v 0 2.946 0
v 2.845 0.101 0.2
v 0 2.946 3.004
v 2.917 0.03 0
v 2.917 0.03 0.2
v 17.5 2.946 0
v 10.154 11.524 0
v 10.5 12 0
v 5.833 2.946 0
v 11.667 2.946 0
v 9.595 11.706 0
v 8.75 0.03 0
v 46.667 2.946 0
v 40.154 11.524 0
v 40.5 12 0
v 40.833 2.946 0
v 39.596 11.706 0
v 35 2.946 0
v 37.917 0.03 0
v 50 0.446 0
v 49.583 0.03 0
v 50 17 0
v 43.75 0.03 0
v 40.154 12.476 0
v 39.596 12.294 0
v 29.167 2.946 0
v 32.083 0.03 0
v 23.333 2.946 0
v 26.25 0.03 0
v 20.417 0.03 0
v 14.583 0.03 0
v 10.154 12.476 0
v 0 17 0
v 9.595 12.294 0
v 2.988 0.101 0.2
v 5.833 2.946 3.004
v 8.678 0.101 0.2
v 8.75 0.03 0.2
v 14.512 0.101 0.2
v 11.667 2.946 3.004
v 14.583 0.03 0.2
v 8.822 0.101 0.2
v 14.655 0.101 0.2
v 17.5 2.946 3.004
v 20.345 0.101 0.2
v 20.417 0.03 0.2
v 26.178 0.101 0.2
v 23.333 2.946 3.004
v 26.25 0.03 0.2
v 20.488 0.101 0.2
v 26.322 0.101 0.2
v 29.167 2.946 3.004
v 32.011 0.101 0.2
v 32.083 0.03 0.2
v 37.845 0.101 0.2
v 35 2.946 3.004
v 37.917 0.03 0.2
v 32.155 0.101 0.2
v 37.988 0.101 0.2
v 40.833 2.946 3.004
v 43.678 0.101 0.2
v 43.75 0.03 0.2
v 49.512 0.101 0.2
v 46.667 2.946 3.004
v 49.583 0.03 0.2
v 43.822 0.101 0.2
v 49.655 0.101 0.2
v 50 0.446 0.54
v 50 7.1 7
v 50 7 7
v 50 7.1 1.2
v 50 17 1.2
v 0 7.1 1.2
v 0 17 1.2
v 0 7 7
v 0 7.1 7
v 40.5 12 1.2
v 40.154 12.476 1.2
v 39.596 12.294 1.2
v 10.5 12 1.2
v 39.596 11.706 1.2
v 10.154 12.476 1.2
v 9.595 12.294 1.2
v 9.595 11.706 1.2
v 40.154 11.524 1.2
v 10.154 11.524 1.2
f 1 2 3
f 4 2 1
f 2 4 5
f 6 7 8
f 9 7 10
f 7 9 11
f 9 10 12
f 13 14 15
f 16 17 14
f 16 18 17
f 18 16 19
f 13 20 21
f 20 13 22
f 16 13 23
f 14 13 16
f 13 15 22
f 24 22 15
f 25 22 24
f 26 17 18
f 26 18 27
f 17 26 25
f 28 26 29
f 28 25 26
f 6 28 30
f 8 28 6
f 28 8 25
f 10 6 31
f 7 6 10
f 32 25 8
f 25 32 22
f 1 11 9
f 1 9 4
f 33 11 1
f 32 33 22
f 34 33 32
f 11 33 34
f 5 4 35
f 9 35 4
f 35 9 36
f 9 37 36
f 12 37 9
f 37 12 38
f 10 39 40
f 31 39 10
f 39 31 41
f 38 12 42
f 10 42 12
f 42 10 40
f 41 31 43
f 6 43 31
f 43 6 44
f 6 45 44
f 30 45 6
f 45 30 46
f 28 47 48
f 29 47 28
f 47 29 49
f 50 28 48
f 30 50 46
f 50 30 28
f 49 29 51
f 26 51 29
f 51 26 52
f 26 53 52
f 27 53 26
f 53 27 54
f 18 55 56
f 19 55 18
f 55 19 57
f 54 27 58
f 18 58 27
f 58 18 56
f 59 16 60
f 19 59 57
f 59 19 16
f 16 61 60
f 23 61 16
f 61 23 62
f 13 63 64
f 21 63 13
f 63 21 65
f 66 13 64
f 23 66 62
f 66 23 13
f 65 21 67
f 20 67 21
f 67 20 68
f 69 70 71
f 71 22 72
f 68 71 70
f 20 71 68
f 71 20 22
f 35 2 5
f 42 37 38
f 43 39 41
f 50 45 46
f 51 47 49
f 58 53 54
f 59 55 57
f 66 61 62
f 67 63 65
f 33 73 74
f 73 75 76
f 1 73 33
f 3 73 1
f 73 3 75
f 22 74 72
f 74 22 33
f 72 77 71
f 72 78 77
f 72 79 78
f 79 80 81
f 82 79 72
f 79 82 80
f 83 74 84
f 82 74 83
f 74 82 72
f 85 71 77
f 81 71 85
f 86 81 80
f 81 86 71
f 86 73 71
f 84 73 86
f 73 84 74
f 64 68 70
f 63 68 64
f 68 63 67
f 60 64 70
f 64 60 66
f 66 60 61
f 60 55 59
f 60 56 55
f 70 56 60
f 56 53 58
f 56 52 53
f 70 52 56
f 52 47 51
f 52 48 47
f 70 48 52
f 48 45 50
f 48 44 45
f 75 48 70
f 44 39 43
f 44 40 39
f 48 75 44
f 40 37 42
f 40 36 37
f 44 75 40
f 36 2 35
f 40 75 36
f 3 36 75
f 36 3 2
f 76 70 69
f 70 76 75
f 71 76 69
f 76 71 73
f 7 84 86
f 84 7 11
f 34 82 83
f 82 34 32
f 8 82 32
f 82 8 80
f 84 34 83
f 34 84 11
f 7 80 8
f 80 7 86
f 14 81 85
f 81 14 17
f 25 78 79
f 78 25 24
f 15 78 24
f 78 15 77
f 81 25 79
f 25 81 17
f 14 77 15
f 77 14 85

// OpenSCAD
x = 50;
y = 17;
y2 = 7;

y3 = (y-y2)/2;
y4 = y-y2;

h1 = 0.2;
h2 = 7;
h3 = 1.2;

t = x/12;

module tooth(){
    rotate([0,0,45])
        translate([-t/2,-t/2,0])
            cube([t,t,t]);
}


difference(){
union(){
cube([x,y,h1]);

translate([0,y2,0])
    cube([x,y4,h3]);

hull(){
cube([x,y2,0.1]);
translate([0,y2,0])
    cube([x,0.1,h2]);
}
}


for(i = [0 : 1.4*t : x+t]){
translate([i,0,0])
    tooth();
}

translate([10,y2+y3,0])
    cylinder(d=1,h=h2);

translate([x-10,y2+y3,0])
    cylinder(d=1,h=h2);


}
